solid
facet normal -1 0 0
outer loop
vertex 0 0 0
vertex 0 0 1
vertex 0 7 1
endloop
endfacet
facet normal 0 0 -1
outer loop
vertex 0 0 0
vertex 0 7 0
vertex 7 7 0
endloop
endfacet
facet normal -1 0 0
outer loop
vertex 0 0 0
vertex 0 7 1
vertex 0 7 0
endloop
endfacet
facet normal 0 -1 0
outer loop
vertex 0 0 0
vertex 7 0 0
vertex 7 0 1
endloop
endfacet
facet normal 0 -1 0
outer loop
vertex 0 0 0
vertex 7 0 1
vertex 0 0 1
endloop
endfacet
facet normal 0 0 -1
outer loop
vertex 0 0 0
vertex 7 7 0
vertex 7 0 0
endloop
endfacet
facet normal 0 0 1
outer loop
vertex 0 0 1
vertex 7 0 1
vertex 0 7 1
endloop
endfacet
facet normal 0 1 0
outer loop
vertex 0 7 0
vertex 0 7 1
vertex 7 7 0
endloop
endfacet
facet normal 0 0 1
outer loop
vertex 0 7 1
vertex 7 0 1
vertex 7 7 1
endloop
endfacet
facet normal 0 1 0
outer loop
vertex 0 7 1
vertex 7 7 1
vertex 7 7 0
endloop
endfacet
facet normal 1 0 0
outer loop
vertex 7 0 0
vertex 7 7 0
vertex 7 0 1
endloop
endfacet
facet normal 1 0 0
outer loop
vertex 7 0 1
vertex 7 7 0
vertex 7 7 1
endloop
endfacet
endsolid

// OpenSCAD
/* Warning, this is a very basic generator with a lot of approximation 
input data : [VFBGA, CBB, 7x7x1mm, 100, , A, C04-21172A]
generated by com.zoubworld.electronics.cad.model3d.Basic
Date : Sun Feb 15 10:50:49 CET 2026
*/

//body
color("black")
translate([0,0,0])
cube([7.0,7.0,1.0], center=false);
